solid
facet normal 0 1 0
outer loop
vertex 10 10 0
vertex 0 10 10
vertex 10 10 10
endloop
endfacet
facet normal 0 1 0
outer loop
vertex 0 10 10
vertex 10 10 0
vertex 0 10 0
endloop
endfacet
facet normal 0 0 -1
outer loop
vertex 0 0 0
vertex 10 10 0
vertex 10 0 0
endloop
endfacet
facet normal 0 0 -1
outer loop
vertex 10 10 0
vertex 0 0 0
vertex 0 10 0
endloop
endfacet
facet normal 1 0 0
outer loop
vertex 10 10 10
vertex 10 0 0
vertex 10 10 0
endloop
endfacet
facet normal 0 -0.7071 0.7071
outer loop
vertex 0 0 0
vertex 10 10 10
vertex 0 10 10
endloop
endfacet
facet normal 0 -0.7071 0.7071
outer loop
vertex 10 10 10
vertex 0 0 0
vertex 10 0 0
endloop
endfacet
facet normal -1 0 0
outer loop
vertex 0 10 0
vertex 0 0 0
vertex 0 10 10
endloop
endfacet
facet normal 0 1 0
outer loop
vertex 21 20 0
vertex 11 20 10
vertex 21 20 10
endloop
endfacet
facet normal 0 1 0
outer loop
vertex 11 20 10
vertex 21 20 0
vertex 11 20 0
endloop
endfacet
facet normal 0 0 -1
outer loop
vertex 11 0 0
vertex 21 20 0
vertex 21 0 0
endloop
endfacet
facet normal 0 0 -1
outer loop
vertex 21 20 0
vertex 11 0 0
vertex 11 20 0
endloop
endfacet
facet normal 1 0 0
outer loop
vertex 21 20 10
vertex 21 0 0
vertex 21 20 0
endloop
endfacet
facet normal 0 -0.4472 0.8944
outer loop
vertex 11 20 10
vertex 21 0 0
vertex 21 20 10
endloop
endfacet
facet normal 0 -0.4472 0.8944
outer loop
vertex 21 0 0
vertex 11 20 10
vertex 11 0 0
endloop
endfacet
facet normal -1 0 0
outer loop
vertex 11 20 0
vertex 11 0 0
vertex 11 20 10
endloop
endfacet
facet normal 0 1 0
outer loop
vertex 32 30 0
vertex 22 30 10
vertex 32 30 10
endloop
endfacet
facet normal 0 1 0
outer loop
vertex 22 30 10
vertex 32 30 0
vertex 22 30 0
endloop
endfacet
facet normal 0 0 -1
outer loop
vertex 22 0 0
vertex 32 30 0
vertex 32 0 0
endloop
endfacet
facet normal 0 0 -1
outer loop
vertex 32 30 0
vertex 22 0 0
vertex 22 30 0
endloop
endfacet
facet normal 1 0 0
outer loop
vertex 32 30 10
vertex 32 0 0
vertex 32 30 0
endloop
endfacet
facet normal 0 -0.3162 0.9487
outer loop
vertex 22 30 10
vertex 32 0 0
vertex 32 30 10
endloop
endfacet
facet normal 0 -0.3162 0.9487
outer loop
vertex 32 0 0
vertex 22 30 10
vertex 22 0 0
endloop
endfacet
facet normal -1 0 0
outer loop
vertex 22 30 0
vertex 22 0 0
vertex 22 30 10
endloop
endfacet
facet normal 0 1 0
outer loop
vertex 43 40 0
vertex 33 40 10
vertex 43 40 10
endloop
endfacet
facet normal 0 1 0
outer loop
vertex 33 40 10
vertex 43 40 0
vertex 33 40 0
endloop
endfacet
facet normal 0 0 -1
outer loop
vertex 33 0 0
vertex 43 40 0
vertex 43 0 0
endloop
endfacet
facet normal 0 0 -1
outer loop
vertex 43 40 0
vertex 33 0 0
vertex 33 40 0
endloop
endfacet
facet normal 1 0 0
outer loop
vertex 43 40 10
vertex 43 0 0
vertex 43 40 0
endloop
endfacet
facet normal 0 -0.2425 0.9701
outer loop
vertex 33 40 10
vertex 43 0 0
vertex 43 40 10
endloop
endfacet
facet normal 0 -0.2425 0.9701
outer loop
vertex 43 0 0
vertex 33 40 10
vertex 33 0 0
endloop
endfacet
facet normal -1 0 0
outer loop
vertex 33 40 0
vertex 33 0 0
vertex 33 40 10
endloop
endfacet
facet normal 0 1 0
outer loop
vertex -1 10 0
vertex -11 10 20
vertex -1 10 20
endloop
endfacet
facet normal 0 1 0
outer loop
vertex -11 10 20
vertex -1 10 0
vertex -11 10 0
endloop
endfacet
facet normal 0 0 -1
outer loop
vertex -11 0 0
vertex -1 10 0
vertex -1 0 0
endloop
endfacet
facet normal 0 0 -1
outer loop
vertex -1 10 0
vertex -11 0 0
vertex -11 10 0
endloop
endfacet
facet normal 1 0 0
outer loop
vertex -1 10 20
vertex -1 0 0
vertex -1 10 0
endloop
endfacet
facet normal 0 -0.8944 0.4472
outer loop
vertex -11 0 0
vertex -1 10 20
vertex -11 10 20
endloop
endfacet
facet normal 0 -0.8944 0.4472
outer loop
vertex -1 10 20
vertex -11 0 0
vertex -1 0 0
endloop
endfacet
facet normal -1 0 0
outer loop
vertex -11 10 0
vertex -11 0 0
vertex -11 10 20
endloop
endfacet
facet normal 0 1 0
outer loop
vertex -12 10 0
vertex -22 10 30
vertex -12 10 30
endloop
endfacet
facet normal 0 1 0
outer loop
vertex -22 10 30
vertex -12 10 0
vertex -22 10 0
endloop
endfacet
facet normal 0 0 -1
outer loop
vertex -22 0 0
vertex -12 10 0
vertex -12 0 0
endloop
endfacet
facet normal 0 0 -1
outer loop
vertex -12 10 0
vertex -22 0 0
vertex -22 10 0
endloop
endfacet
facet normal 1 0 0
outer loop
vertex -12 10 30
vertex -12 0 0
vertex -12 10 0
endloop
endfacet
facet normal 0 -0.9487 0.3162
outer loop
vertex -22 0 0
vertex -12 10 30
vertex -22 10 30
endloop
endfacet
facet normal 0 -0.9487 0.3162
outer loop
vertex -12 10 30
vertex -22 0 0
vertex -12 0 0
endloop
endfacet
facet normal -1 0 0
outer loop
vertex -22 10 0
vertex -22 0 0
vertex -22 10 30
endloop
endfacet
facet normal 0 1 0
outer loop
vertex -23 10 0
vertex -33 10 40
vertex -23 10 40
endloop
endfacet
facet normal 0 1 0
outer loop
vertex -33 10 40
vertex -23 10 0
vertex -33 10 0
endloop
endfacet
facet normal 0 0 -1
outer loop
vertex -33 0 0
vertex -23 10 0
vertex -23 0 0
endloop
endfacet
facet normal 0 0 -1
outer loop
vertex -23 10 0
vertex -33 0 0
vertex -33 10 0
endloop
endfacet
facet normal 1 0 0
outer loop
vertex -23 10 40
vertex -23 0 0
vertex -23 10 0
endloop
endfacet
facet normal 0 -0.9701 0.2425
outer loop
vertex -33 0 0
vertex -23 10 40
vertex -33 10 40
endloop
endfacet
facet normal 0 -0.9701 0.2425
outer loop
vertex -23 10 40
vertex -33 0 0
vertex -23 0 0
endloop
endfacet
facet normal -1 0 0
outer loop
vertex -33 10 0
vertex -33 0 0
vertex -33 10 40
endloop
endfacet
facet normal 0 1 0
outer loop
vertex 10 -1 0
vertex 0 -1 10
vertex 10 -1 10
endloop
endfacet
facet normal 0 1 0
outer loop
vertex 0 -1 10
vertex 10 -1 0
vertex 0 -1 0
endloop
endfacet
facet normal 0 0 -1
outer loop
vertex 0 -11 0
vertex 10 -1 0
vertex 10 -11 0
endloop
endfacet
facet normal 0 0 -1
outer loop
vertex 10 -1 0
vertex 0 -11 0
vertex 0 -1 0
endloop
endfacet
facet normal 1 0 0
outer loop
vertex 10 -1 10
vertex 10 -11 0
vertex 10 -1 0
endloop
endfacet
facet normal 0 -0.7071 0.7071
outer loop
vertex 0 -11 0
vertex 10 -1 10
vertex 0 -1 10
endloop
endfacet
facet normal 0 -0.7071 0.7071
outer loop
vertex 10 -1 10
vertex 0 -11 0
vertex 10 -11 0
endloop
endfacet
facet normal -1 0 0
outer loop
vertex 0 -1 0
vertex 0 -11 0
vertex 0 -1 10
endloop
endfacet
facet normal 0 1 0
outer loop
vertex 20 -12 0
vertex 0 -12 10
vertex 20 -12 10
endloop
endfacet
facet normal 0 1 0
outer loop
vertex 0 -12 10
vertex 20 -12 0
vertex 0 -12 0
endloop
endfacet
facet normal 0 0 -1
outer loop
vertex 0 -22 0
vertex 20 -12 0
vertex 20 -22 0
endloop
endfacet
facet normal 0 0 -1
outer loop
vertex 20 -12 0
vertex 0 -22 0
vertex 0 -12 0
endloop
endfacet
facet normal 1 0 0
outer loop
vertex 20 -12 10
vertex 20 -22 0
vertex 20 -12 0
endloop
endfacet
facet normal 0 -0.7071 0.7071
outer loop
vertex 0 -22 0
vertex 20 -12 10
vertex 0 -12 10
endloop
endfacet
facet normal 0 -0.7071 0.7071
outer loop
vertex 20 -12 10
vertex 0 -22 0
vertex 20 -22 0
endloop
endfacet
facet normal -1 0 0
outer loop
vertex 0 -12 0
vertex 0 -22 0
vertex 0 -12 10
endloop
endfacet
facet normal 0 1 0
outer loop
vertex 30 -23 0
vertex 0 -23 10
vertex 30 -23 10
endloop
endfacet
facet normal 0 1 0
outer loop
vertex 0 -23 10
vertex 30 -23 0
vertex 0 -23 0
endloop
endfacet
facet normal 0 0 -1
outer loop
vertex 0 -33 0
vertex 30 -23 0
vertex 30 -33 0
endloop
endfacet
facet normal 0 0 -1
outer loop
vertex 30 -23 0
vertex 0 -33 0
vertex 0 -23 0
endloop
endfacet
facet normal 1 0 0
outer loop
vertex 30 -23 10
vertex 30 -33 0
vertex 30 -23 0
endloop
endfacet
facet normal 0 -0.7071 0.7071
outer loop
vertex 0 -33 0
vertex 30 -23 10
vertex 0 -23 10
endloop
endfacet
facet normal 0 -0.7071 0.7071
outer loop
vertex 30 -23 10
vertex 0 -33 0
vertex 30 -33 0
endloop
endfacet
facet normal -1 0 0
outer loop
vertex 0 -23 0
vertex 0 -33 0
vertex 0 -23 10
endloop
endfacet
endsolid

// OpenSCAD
//
// Creates a right angle triangular prism with the parameters provided.
//
//    side view            front view
//
//           |             -----------
//          /|             |         |
//         / |             |         |
//        /  |             |         |
//       /   |  height     |         |
//      /    |             |         |
//     /     |             |         |
//    /      |             |         |
//   /--------             -----------
//   baseLength               width
//

module rightAnglePrism(width, baseLength, height){
   polyhedron(
           points=[[0,0,0], [width,0,0], [width,baseLength,0], [0,baseLength,0], [0,baseLength,height], [width,baseLength,height]],
           faces=[[0,1,2,3],[5,4,3,2],[0,4,5,1],[0,3,4],[5,2,1]]
           );
}


// examples
rightAnglePrism(10, 10, 10);
translate([11, 0, 0])
    rightAnglePrism(10, 20, 10);
translate([22, 0, 0])
    rightAnglePrism(10, 30, 10);
translate([33, 0, 0])
    rightAnglePrism(10, 40, 10);

translate([-11, 0, 0])
    rightAnglePrism(10, 10, 20);
translate([-22, 0, 0])
    rightAnglePrism(10, 10, 30);
translate([-33, 0, 0])
    rightAnglePrism(10, 10, 40);

translate([0, -11, 0])
    rightAnglePrism(10, 10, 10);
translate([0, -22, 0])
    rightAnglePrism(20, 10, 10);
translate([0, -33, 0])
    rightAnglePrism(30, 10, 10);
